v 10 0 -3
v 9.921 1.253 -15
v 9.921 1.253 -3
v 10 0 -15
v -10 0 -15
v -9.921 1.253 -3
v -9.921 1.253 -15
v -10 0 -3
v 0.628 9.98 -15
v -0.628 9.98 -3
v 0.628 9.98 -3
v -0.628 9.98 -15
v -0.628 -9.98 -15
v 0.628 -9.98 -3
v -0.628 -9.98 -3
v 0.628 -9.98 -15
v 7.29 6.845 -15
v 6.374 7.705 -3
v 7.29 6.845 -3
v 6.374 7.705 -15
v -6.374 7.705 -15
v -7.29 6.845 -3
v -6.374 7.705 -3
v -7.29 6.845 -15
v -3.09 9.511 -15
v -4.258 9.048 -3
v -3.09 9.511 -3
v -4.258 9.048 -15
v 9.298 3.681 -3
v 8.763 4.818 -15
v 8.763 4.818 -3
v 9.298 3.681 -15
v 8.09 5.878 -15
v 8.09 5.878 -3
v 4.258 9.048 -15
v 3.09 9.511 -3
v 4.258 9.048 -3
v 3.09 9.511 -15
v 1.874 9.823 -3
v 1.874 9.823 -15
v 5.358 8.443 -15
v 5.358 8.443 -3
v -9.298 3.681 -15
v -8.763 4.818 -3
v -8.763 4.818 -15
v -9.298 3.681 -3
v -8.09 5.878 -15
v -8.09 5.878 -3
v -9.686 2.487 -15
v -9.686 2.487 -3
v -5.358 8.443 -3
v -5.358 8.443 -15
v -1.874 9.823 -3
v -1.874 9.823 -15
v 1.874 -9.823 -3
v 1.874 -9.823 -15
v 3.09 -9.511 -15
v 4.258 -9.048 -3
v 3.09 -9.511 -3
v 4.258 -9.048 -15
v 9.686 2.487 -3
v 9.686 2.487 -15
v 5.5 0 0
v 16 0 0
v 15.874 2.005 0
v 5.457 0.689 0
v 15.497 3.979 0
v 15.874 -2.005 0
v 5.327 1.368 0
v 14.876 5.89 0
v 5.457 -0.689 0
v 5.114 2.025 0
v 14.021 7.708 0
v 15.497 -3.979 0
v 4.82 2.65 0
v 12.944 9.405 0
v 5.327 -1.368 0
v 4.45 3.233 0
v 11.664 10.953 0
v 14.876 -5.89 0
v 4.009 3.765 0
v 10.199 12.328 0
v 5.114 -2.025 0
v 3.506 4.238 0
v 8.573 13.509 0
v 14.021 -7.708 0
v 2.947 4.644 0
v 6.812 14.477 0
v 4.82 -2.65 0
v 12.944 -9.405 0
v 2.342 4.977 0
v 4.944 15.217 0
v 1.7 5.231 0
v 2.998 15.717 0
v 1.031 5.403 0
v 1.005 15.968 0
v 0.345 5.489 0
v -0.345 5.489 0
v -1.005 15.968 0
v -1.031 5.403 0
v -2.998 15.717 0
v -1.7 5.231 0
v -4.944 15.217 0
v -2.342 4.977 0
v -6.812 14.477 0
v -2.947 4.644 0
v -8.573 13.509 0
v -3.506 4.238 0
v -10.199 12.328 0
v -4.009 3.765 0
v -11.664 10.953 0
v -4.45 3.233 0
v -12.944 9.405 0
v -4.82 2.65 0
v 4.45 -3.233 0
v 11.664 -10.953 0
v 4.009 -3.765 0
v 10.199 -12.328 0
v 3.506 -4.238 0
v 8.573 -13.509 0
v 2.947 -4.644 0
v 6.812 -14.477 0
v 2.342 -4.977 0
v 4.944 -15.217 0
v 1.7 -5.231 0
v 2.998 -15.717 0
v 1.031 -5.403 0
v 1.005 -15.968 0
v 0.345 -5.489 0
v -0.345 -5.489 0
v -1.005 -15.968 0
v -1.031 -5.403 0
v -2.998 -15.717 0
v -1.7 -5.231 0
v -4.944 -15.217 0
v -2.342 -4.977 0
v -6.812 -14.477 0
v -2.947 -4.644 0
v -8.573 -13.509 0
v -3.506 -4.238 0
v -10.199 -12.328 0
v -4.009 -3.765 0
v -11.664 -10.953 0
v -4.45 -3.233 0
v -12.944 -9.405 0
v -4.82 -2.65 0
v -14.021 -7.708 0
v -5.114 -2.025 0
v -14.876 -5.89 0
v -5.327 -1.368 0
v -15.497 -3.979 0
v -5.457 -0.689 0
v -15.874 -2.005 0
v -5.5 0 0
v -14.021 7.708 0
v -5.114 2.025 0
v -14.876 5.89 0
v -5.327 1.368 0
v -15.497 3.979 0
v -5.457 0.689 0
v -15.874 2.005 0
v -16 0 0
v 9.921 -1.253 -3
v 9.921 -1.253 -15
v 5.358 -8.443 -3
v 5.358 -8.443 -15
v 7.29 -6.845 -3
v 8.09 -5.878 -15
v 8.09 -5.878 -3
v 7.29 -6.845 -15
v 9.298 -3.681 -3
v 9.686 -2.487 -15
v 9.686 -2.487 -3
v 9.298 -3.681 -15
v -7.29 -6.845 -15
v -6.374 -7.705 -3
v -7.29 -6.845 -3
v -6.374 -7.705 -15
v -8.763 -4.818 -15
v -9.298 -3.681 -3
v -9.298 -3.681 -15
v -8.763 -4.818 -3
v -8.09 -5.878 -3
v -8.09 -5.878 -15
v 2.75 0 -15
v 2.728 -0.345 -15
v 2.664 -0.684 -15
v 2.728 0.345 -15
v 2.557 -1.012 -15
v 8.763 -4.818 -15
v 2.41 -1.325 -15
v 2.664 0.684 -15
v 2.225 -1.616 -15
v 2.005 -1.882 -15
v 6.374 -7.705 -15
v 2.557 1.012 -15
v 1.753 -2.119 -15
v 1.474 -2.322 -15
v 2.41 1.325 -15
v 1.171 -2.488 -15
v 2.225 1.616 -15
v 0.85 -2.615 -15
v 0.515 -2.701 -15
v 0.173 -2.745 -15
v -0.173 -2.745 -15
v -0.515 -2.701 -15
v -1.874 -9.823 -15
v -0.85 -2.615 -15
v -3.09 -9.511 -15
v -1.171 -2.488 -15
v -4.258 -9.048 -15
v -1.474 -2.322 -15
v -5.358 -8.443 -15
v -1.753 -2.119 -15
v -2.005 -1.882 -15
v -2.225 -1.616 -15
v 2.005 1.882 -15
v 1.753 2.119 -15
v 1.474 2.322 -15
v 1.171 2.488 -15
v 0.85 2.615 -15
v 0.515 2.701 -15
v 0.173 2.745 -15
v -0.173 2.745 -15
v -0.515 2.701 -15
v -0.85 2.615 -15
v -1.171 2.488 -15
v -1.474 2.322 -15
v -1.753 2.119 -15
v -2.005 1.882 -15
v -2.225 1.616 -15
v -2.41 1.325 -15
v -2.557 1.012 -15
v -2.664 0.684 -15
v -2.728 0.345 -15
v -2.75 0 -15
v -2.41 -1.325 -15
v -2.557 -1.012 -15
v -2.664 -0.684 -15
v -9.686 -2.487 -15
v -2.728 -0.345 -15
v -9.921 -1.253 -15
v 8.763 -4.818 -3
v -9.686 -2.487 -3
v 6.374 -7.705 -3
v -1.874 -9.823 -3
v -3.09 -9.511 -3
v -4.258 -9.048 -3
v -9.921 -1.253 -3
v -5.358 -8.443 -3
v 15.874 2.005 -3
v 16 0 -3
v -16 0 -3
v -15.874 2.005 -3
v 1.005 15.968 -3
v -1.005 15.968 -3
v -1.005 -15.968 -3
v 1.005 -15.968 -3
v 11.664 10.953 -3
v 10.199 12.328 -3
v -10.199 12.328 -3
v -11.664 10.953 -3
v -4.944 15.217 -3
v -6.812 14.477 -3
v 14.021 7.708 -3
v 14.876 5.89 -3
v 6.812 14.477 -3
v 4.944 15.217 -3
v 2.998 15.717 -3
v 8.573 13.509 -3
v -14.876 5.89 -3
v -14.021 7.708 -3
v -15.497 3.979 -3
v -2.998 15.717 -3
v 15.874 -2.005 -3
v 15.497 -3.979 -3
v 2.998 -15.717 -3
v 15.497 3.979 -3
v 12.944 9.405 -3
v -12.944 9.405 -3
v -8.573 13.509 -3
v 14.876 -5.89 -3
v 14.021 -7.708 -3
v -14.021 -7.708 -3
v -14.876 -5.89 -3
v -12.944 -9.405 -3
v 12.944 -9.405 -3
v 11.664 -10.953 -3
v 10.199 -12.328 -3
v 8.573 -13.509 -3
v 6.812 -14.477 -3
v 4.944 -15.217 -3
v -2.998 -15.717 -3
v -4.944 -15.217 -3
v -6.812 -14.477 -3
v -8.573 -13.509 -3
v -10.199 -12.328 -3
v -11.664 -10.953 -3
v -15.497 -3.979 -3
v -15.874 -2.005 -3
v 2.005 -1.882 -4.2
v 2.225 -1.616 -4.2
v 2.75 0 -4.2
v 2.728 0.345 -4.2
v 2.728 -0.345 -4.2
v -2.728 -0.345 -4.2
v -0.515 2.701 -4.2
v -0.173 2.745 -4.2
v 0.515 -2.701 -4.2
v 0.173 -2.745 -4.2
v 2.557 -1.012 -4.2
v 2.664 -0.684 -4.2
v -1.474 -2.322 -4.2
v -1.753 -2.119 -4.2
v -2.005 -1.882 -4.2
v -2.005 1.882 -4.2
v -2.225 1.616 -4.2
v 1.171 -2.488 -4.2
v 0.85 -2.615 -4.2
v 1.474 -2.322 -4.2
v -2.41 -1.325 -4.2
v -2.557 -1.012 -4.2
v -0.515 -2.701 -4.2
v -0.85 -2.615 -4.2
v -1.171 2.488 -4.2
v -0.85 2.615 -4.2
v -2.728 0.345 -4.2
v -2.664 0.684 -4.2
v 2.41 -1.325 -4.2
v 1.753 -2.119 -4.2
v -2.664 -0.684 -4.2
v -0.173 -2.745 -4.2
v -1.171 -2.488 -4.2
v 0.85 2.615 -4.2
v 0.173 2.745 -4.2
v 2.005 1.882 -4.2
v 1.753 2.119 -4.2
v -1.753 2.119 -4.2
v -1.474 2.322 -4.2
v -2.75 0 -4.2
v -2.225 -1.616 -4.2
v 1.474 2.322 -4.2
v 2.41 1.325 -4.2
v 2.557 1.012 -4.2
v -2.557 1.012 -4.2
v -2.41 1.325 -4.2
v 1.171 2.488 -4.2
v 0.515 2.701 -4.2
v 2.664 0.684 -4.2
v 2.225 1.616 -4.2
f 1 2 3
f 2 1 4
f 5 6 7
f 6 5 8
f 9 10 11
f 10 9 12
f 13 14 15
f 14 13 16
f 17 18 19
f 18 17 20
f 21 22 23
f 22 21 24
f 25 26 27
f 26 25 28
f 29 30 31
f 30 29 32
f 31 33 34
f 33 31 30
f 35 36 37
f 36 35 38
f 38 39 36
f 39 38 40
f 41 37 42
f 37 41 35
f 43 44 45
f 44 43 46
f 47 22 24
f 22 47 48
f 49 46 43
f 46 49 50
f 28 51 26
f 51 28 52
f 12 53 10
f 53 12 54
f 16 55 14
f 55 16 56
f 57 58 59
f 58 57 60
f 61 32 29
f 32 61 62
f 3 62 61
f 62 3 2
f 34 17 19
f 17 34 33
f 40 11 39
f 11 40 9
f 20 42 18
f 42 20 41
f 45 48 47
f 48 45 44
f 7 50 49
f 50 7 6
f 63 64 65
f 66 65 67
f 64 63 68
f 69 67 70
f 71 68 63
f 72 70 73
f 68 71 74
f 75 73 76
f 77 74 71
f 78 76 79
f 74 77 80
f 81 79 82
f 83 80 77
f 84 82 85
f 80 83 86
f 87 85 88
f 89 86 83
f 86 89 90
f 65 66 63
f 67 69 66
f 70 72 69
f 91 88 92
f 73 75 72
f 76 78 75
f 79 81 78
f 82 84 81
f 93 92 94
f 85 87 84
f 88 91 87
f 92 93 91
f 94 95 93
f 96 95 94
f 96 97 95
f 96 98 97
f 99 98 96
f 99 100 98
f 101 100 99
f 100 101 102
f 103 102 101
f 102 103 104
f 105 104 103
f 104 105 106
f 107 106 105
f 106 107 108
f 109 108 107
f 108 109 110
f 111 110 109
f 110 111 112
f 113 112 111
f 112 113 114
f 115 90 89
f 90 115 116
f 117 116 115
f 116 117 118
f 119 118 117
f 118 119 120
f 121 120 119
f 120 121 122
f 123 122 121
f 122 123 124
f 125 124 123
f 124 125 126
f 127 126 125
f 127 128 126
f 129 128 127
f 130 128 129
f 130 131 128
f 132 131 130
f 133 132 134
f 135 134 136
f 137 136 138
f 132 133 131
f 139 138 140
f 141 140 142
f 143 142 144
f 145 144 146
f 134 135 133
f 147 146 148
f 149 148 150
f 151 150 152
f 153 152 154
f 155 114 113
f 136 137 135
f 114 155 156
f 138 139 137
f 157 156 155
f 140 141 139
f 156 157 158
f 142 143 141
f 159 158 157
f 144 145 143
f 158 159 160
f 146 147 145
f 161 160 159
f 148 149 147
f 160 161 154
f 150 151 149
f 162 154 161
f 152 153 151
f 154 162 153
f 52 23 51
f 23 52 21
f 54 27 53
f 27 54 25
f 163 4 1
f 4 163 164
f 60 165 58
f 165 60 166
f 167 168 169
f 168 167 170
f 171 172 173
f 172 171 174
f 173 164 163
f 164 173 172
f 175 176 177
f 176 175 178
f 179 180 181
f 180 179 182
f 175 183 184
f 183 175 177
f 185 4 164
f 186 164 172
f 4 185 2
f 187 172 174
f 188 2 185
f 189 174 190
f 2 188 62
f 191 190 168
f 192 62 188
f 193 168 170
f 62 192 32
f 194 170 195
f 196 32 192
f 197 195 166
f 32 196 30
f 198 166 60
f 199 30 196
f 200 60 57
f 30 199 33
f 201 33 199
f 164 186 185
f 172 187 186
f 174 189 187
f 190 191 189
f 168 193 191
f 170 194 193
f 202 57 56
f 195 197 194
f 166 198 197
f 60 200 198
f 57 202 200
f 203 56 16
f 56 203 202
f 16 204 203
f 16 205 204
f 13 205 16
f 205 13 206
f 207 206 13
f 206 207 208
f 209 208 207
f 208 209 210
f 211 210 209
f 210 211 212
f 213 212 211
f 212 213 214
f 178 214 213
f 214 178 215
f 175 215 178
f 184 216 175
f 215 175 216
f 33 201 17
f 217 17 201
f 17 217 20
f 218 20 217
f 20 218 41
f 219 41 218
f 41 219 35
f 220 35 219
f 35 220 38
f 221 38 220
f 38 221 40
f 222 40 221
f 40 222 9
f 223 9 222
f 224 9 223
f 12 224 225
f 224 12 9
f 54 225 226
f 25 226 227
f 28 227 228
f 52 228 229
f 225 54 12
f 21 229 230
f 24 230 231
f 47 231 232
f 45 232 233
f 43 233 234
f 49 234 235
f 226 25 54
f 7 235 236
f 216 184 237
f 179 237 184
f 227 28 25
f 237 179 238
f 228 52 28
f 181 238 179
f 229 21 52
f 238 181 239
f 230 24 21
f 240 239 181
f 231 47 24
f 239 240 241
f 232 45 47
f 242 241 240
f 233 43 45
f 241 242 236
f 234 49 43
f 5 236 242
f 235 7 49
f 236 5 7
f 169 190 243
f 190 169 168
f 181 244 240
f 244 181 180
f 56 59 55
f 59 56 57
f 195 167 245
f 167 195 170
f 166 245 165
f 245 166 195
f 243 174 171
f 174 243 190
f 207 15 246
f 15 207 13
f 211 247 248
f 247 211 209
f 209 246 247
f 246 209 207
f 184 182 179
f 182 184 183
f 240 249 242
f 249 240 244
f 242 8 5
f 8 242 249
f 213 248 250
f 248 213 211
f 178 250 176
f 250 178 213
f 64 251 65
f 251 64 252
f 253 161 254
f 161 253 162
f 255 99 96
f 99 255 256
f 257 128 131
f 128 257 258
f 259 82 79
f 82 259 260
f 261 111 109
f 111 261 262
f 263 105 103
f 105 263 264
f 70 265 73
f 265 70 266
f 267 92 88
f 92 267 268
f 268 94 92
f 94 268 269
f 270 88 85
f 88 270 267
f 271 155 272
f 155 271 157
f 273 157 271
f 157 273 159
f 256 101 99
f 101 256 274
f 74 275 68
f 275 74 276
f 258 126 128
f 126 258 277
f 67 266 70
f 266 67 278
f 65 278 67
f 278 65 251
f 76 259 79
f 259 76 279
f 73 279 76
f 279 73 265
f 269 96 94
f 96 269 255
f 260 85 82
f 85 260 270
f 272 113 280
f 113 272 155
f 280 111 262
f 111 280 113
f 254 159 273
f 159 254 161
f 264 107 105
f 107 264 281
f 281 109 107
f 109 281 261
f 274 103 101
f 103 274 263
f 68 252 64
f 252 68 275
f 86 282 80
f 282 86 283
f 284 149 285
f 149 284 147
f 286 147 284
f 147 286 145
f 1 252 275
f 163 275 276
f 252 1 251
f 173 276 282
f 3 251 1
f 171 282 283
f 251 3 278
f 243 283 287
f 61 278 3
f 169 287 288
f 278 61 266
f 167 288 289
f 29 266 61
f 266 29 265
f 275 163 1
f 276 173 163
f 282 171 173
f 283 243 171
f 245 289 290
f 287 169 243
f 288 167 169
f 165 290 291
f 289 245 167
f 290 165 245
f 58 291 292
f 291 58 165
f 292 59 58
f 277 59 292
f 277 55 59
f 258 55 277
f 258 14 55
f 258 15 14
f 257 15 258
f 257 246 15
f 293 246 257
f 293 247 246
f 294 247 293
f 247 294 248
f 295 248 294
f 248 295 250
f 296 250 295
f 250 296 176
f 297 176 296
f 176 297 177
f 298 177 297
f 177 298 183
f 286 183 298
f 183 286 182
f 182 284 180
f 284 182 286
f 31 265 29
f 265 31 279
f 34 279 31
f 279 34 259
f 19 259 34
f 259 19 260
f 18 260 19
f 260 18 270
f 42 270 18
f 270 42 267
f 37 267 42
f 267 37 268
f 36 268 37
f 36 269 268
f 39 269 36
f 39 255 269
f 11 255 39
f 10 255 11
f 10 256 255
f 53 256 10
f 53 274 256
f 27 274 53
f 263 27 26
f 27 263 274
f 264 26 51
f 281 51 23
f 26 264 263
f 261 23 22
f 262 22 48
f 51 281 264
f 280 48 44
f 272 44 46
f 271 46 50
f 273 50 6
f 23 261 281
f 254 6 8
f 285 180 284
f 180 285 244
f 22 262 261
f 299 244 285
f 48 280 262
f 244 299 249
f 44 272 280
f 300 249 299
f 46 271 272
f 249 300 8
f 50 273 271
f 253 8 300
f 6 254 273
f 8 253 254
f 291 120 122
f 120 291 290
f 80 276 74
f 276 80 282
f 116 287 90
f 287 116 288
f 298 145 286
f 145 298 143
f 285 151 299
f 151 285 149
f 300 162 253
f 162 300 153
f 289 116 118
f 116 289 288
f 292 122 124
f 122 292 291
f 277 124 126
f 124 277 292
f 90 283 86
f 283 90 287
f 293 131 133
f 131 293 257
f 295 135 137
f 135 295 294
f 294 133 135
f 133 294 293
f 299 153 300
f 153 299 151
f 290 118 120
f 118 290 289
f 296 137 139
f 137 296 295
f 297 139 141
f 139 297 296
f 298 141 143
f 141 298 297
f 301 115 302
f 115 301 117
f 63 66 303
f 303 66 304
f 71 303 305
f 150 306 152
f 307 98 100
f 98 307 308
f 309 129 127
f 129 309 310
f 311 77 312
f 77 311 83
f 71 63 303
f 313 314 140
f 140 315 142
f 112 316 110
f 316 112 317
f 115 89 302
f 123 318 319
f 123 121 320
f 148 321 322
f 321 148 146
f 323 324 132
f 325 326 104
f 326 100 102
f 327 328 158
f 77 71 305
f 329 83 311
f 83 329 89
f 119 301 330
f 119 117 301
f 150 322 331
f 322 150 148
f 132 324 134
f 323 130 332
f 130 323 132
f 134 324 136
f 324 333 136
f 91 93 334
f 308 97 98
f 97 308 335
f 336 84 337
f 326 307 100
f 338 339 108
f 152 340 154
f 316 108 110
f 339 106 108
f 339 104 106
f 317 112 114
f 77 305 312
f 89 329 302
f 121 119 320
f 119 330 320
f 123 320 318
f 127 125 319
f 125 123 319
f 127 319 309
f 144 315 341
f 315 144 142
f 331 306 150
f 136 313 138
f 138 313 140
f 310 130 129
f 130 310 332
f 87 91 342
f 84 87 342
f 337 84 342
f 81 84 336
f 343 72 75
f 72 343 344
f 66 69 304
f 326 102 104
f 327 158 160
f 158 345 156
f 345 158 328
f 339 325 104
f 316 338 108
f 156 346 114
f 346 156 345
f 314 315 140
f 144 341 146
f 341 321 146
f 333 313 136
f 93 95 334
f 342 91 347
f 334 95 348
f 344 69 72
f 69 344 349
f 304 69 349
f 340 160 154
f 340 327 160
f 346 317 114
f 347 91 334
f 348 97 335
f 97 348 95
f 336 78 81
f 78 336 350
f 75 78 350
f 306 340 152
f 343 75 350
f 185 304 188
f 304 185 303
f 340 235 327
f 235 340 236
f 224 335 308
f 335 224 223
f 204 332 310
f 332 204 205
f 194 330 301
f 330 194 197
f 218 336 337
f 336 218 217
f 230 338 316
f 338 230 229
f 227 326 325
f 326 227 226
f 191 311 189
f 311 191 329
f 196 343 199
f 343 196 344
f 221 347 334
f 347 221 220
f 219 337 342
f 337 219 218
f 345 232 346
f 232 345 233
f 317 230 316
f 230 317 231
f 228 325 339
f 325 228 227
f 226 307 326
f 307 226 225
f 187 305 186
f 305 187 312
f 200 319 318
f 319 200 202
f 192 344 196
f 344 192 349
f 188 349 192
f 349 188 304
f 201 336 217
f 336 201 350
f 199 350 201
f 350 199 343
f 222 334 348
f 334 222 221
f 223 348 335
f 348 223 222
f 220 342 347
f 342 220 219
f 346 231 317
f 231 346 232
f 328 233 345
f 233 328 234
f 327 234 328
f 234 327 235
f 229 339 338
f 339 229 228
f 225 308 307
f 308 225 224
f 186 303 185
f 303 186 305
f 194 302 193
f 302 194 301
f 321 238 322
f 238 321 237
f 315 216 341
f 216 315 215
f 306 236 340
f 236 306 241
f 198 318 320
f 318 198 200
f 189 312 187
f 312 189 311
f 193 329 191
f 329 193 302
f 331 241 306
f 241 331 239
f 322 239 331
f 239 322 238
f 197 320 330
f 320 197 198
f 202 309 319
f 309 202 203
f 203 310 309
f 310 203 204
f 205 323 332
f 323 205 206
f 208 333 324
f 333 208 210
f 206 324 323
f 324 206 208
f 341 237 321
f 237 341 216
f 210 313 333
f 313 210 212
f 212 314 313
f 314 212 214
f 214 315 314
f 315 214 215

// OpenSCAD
$fn = 50;


difference() {
	union() {
		translate(v = [0, 0, -15.0000000000]) {
			cylinder(h = 15, r = 10.0000000000);
		}
		translate(v = [0, 0, -3.0000000000]) {
			cylinder(h = 3, r = 16.0000000000);
		}
	}
	union() {
		translate(v = [0, 0, 0]) {
			rotate(a = [0, 0, 0]) {
				difference() {
					union() {
						#translate(v = [0, 0, -15.0000000000]) {
							cylinder(h = 15, r = 2.2500000000);
						}
						#translate(v = [0, 0, -4.2000000000]) {
							cylinder(h = 4.2000000000, r = 10.0000000000, r1 = 2.7500000000, r2 = 5.5000000000);
						}
						#translate(v = [0, 0, -15.0000000000]) {
							cylinder(h = 15, r = 2.7500000000);
						}
						#translate(v = [0, 0, -15.0000000000]) {
							cylinder(h = 15, r = 2.2500000000);
						}
					}
					union();
				}
			}
		}
	}
}
